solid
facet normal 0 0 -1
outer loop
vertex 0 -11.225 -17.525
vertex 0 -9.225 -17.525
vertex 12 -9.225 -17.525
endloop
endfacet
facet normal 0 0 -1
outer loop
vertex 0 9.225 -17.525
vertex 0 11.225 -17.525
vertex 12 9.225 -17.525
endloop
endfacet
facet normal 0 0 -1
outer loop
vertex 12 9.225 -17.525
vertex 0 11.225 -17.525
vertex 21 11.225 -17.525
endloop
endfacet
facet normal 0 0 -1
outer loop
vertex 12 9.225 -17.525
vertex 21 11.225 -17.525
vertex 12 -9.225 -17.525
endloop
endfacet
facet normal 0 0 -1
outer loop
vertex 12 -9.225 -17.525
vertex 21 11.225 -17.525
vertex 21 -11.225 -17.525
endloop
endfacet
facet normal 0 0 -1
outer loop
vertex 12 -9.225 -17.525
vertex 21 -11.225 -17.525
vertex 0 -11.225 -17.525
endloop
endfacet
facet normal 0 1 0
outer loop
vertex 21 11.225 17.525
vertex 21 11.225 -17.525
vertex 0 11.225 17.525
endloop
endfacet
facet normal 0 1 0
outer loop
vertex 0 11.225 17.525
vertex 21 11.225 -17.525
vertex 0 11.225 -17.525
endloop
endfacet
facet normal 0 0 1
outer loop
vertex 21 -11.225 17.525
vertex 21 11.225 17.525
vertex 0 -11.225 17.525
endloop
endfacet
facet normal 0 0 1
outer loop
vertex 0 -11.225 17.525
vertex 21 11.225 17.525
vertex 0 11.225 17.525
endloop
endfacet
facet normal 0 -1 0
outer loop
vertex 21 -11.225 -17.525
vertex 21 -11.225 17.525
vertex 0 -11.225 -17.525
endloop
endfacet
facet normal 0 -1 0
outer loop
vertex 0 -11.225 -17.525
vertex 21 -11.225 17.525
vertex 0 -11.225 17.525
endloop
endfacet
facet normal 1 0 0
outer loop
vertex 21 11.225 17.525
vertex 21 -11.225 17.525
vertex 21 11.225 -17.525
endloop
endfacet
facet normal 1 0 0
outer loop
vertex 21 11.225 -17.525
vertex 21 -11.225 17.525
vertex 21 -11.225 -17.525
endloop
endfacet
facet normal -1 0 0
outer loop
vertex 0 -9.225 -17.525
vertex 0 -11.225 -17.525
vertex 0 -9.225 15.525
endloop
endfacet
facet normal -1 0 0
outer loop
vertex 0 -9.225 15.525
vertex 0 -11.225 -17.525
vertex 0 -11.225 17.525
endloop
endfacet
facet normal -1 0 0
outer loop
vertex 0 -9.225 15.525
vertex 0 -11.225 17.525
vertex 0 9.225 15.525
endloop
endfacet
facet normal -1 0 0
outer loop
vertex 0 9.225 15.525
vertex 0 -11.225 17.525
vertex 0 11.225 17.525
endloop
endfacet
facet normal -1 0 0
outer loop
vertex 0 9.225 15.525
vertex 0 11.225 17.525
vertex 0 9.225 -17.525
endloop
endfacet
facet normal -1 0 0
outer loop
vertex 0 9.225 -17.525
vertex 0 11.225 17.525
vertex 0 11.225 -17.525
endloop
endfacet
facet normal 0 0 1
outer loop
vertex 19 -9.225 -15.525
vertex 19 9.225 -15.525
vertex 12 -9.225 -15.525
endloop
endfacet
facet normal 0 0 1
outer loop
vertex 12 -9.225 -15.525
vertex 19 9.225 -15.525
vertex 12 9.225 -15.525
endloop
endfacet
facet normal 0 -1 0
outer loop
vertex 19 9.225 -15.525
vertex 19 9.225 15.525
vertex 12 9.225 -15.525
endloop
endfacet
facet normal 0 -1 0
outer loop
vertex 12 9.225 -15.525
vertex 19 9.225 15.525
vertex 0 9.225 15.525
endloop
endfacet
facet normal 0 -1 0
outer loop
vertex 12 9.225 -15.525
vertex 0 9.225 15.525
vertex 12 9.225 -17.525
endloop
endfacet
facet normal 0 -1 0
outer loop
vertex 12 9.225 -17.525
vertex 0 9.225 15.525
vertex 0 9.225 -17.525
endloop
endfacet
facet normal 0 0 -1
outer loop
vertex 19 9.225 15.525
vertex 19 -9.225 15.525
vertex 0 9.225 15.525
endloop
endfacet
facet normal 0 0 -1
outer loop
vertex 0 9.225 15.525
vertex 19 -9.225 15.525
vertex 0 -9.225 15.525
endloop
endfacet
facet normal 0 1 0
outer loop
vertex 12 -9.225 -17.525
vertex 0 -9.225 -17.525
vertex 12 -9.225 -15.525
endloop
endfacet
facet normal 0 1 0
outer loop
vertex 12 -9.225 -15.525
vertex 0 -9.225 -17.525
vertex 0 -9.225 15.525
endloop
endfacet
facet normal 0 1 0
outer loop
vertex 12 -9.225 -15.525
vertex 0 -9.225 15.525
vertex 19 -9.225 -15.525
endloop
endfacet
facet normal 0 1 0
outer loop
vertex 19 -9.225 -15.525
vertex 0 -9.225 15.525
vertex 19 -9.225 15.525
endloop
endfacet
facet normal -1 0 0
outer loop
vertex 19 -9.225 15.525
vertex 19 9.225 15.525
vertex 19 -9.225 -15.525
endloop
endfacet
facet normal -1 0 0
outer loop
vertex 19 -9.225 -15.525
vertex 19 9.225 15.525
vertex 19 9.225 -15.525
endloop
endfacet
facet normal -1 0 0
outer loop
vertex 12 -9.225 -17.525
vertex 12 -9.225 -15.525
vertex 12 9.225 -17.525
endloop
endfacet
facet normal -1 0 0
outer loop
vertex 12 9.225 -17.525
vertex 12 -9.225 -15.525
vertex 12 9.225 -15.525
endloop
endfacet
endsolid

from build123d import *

# Parameters (mm, degrees)
SKETCH4_W           = 31.05
SKETCH4_H           = 18.45
BOSS_EXTRUDE1_DEPTH = 19
SHELL1_T            = 2
SKETCH5_W           = 12
SKETCH5_H           = 18.45
CUT_EXTRUDE1_DEPTH  = 2


with BuildPart() as part:
    # Sketch4 → Boss-Extrude1 (new body)
    with BuildSketch(Plane(origin=(0, 0, 0), x_dir=(0, 0, -1), z_dir=(1, 0, 0))):
        Rectangle(SKETCH4_W, SKETCH4_H)
    extrude(amount=BOSS_EXTRUDE1_DEPTH)

    # Shell1
    shell1_openings = [part.faces().sort_by_distance(p)[0] for p in [
        (0, 0, 0),
    ]]
    offset(amount=SHELL1_T, openings=shell1_openings, kind=Kind.INTERSECTION)

    # Sketch5 → Cut-Extrude1 (cut)
    with BuildSketch(Plane(origin=(0, 0, -17.525), x_dir=(-1, 0, 0), z_dir=(0, 0, -1))):
        with Locations((-6, 0)):
            Rectangle(SKETCH5_W, SKETCH5_H)
    extrude(amount=-CUT_EXTRUDE1_DEPTH, mode=Mode.SUBTRACT)


solid = part.part
